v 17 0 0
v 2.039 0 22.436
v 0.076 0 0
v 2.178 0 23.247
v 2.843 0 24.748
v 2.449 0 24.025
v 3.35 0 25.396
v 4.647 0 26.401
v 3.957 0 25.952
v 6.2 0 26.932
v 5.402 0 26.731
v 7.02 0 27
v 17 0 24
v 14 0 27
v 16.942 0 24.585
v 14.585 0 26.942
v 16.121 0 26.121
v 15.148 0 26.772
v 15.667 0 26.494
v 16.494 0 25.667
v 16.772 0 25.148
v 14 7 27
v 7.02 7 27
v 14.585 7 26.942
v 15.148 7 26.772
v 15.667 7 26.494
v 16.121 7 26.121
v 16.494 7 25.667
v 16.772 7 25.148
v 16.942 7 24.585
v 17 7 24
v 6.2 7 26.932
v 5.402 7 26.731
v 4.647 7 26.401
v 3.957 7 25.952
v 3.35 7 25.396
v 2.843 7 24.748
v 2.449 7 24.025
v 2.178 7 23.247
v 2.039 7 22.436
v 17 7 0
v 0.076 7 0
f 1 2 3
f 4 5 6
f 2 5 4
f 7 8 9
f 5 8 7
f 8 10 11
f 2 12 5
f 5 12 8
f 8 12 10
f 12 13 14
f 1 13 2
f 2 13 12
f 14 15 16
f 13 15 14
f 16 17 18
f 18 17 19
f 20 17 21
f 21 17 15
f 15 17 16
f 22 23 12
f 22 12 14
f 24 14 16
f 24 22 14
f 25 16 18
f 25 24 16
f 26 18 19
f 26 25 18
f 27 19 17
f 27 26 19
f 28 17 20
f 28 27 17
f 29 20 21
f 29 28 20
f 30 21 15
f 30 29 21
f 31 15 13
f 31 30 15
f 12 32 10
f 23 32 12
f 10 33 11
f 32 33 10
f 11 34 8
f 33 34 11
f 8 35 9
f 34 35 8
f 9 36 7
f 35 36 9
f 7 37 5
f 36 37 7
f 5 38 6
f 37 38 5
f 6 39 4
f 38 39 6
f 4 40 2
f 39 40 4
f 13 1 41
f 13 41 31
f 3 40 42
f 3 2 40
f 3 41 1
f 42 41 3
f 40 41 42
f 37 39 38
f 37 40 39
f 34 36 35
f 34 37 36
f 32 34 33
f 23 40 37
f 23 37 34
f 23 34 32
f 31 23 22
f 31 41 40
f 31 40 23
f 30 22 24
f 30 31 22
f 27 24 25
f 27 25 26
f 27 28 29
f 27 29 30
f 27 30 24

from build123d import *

# Parameters (mm, degrees)
BOX_W               = 20
BOX_H               = 20
BOX_DEPTH           = 40
BOX_PLACEMENT_ANGLE = 5
BOX001_W            = 17
BOX001_H            = 7
BOX001_DEPTH        = 27
FILLET_R            = 5
FILLET001_R         = 3


with BuildPart() as cube:
    # Box → Box (new body)
    with BuildSketch(Plane.XY):
        with Locations((10, 10)):
            Rectangle(BOX_W, BOX_H)
    extrude(amount=BOX_DEPTH)


with BuildPart() as cube_1:
    # Box placement: moved
    add(cube.part.moved(Location((-20, 0, 0))).rotate(Axis((-20, 0, 0), (0, 1, 0)), BOX_PLACEMENT_ANGLE))


with BuildPart() as fillet001:
    # Box001 → Box001 (new body)
    with BuildSketch(Plane.XY):
        with Locations((8.5, 3.5)):
            Rectangle(BOX001_W, BOX001_H)
    extrude(amount=BOX001_DEPTH)

    # Cut: cut Cube
    add(cube_1.part, mode=Mode.SUBTRACT)

    # Fillet
    fillet_edges = [fillet001.edges().sort_by_distance(p)[0] for p in [
        (2.438591, 3.5, 27),
    ]]
    fillet(fillet_edges, radius=FILLET_R)

    # Fillet001
    fillet001_edges = [fillet001.edges().sort_by_distance(p)[0] for p in [
        (17, 3.5, 27),
    ]]
    fillet(fillet001_edges, radius=FILLET001_R)


solid = fillet001.part
